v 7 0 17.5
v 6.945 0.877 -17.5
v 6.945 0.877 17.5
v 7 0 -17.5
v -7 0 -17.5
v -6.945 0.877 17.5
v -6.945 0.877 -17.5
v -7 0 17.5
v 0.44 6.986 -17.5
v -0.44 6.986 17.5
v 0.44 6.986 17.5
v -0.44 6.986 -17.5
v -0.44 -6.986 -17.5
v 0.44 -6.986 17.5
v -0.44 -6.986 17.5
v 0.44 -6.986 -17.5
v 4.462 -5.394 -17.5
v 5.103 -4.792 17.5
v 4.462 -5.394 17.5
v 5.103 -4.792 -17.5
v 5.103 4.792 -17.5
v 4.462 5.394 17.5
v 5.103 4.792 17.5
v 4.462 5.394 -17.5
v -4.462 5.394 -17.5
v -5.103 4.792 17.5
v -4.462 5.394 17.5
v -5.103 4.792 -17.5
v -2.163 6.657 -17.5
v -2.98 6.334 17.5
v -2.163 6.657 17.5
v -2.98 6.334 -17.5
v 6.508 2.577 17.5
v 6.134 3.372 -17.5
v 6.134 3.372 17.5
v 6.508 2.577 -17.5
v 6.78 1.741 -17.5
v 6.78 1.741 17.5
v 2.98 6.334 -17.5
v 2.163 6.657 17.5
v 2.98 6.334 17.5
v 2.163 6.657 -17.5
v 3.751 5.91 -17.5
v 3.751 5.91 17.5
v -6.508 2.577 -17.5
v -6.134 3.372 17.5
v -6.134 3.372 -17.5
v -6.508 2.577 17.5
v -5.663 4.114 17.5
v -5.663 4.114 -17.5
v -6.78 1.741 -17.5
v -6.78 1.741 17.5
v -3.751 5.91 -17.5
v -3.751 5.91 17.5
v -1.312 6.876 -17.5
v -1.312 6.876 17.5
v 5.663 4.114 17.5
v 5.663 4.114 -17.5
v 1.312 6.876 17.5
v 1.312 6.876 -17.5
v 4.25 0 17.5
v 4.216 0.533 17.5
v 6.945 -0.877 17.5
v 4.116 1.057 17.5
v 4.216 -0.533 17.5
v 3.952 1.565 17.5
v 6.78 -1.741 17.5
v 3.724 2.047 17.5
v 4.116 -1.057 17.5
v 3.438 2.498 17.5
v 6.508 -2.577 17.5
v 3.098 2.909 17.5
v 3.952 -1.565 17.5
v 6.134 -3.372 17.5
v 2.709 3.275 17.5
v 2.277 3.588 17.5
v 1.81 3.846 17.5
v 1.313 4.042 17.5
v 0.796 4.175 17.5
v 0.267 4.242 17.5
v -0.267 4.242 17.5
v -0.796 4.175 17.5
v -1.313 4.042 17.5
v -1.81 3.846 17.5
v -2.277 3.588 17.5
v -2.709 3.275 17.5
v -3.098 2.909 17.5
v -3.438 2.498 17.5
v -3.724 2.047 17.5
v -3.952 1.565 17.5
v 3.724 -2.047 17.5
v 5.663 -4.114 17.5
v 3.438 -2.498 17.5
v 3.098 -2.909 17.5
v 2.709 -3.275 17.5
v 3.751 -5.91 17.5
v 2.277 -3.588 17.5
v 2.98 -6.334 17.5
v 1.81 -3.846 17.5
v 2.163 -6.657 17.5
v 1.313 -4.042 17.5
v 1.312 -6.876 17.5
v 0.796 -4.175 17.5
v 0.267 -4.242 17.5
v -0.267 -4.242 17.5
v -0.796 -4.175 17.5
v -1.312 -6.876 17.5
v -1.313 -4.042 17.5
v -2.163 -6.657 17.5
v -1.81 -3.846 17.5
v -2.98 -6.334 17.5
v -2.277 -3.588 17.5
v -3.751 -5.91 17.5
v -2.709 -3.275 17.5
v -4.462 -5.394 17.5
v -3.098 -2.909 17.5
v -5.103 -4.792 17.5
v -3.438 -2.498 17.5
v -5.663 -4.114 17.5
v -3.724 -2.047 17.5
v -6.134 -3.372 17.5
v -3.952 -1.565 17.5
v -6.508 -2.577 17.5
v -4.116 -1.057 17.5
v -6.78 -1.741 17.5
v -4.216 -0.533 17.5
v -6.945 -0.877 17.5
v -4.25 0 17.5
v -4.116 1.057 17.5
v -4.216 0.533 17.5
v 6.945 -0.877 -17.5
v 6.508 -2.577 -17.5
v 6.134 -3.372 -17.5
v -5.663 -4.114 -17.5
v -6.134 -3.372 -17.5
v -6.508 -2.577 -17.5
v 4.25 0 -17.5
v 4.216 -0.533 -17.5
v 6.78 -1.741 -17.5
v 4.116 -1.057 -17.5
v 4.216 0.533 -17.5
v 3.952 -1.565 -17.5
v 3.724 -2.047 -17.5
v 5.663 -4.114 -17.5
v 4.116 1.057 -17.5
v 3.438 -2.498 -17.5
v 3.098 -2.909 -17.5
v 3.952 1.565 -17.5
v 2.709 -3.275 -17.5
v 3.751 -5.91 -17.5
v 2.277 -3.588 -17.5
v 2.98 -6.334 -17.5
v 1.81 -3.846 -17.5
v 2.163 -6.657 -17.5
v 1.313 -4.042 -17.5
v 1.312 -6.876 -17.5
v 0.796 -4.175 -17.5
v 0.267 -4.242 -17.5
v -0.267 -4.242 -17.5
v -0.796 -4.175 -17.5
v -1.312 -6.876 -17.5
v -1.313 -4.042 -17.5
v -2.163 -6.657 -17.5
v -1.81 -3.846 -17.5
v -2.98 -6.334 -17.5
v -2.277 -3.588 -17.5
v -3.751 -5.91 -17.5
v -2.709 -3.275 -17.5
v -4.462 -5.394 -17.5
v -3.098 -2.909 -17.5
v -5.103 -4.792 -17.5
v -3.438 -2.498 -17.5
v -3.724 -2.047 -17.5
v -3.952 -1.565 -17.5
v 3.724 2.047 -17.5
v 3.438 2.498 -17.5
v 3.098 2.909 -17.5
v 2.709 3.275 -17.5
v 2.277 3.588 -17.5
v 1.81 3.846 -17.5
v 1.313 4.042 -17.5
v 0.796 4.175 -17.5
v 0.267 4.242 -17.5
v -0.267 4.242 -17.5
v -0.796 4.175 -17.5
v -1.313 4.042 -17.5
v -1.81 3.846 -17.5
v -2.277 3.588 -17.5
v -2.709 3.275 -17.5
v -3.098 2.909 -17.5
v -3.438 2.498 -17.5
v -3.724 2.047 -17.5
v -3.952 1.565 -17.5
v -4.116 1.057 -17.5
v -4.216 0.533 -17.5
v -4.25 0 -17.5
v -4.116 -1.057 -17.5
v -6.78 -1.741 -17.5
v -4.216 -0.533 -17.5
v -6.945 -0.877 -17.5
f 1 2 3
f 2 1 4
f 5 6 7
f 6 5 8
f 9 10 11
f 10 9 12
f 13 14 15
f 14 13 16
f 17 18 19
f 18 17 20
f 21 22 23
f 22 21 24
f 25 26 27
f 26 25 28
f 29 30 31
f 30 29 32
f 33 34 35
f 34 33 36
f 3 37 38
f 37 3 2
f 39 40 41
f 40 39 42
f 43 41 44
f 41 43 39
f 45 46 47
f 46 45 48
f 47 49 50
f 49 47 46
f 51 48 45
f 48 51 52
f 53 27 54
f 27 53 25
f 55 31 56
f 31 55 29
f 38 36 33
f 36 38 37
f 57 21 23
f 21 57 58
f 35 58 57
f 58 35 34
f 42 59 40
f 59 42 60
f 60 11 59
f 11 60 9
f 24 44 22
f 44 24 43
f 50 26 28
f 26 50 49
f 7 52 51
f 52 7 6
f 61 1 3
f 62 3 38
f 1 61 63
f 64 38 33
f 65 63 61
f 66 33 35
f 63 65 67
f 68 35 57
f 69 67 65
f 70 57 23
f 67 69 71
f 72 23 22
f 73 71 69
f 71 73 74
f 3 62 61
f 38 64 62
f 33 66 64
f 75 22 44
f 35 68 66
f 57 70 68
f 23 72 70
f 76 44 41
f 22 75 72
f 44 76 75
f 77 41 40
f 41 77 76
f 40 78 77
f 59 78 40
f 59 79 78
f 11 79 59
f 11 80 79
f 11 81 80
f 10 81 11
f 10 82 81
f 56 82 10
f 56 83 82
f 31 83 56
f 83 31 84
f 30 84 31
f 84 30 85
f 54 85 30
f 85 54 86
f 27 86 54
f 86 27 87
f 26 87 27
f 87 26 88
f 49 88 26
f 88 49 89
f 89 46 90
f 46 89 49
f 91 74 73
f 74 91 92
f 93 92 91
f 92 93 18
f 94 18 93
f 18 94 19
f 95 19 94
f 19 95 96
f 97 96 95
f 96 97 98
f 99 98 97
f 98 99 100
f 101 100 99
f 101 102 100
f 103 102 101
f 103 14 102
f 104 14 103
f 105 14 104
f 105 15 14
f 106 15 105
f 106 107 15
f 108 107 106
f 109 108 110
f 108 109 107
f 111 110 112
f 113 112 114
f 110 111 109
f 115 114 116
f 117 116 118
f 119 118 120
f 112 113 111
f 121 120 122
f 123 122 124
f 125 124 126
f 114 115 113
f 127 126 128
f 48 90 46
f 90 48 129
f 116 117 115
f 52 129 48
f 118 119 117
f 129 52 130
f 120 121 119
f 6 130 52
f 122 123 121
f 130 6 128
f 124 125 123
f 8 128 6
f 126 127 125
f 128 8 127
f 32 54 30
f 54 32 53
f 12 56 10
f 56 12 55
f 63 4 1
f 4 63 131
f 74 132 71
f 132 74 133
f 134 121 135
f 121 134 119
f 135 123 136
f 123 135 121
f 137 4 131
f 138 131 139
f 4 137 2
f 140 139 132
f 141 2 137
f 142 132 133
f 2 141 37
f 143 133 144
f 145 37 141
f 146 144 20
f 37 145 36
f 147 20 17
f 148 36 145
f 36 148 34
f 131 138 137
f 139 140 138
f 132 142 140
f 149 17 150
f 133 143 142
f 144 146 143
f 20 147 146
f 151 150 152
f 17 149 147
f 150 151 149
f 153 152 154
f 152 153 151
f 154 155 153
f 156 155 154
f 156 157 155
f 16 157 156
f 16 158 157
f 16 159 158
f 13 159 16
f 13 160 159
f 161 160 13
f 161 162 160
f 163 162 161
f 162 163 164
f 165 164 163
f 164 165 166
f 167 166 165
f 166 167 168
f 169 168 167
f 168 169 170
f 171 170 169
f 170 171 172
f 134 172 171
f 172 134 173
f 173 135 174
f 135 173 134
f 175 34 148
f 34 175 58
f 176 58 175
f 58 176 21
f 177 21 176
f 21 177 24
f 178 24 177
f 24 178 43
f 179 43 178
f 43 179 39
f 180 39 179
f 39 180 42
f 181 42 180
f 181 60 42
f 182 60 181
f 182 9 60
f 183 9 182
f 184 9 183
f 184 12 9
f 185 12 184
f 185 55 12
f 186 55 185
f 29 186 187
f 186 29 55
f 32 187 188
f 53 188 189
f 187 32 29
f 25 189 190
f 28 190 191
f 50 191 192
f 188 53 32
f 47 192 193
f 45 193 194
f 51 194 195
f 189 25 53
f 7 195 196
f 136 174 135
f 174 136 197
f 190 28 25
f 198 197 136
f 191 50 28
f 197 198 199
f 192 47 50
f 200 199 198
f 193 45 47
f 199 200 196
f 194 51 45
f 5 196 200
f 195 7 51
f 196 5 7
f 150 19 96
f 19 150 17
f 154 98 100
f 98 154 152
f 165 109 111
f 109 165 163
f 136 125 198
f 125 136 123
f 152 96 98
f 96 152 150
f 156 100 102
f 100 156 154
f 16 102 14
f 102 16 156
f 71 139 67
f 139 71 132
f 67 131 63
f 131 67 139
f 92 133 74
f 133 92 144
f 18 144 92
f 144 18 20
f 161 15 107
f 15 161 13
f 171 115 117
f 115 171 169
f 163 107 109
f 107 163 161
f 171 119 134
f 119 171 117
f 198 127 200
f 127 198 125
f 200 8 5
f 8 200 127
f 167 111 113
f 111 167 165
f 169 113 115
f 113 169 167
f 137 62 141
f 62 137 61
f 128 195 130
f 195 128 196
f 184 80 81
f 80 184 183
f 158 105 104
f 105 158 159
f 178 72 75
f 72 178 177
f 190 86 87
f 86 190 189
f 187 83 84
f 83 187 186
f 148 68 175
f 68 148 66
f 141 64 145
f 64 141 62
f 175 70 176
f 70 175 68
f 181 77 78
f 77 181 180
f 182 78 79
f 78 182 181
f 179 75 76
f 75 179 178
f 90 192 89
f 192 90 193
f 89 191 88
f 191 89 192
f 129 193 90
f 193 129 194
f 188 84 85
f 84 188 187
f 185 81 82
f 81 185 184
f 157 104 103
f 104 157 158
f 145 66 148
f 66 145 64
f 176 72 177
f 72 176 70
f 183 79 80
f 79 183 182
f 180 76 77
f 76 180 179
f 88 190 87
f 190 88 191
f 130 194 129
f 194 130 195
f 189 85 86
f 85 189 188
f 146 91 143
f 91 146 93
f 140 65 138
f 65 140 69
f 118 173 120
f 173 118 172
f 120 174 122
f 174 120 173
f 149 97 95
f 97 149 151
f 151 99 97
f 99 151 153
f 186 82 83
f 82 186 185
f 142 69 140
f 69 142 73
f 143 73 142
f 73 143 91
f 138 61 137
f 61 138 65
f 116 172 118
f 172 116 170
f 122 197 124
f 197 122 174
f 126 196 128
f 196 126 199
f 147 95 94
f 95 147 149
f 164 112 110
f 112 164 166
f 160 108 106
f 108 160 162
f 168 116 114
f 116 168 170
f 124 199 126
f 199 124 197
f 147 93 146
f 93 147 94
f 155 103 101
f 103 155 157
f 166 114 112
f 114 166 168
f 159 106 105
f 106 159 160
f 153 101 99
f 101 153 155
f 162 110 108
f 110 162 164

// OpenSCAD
$fn = 50;


difference() {
	union() {
		translate(v = [0, 0, -17.5000000000]) {
			cylinder(h = 35, r = 7.0000000000);
		}
	}
	union() {
		translate(v = [0, 0, -100.0000000000]) {
			cylinder(h = 200, r = 4.2500000000);
		}
	}
}
